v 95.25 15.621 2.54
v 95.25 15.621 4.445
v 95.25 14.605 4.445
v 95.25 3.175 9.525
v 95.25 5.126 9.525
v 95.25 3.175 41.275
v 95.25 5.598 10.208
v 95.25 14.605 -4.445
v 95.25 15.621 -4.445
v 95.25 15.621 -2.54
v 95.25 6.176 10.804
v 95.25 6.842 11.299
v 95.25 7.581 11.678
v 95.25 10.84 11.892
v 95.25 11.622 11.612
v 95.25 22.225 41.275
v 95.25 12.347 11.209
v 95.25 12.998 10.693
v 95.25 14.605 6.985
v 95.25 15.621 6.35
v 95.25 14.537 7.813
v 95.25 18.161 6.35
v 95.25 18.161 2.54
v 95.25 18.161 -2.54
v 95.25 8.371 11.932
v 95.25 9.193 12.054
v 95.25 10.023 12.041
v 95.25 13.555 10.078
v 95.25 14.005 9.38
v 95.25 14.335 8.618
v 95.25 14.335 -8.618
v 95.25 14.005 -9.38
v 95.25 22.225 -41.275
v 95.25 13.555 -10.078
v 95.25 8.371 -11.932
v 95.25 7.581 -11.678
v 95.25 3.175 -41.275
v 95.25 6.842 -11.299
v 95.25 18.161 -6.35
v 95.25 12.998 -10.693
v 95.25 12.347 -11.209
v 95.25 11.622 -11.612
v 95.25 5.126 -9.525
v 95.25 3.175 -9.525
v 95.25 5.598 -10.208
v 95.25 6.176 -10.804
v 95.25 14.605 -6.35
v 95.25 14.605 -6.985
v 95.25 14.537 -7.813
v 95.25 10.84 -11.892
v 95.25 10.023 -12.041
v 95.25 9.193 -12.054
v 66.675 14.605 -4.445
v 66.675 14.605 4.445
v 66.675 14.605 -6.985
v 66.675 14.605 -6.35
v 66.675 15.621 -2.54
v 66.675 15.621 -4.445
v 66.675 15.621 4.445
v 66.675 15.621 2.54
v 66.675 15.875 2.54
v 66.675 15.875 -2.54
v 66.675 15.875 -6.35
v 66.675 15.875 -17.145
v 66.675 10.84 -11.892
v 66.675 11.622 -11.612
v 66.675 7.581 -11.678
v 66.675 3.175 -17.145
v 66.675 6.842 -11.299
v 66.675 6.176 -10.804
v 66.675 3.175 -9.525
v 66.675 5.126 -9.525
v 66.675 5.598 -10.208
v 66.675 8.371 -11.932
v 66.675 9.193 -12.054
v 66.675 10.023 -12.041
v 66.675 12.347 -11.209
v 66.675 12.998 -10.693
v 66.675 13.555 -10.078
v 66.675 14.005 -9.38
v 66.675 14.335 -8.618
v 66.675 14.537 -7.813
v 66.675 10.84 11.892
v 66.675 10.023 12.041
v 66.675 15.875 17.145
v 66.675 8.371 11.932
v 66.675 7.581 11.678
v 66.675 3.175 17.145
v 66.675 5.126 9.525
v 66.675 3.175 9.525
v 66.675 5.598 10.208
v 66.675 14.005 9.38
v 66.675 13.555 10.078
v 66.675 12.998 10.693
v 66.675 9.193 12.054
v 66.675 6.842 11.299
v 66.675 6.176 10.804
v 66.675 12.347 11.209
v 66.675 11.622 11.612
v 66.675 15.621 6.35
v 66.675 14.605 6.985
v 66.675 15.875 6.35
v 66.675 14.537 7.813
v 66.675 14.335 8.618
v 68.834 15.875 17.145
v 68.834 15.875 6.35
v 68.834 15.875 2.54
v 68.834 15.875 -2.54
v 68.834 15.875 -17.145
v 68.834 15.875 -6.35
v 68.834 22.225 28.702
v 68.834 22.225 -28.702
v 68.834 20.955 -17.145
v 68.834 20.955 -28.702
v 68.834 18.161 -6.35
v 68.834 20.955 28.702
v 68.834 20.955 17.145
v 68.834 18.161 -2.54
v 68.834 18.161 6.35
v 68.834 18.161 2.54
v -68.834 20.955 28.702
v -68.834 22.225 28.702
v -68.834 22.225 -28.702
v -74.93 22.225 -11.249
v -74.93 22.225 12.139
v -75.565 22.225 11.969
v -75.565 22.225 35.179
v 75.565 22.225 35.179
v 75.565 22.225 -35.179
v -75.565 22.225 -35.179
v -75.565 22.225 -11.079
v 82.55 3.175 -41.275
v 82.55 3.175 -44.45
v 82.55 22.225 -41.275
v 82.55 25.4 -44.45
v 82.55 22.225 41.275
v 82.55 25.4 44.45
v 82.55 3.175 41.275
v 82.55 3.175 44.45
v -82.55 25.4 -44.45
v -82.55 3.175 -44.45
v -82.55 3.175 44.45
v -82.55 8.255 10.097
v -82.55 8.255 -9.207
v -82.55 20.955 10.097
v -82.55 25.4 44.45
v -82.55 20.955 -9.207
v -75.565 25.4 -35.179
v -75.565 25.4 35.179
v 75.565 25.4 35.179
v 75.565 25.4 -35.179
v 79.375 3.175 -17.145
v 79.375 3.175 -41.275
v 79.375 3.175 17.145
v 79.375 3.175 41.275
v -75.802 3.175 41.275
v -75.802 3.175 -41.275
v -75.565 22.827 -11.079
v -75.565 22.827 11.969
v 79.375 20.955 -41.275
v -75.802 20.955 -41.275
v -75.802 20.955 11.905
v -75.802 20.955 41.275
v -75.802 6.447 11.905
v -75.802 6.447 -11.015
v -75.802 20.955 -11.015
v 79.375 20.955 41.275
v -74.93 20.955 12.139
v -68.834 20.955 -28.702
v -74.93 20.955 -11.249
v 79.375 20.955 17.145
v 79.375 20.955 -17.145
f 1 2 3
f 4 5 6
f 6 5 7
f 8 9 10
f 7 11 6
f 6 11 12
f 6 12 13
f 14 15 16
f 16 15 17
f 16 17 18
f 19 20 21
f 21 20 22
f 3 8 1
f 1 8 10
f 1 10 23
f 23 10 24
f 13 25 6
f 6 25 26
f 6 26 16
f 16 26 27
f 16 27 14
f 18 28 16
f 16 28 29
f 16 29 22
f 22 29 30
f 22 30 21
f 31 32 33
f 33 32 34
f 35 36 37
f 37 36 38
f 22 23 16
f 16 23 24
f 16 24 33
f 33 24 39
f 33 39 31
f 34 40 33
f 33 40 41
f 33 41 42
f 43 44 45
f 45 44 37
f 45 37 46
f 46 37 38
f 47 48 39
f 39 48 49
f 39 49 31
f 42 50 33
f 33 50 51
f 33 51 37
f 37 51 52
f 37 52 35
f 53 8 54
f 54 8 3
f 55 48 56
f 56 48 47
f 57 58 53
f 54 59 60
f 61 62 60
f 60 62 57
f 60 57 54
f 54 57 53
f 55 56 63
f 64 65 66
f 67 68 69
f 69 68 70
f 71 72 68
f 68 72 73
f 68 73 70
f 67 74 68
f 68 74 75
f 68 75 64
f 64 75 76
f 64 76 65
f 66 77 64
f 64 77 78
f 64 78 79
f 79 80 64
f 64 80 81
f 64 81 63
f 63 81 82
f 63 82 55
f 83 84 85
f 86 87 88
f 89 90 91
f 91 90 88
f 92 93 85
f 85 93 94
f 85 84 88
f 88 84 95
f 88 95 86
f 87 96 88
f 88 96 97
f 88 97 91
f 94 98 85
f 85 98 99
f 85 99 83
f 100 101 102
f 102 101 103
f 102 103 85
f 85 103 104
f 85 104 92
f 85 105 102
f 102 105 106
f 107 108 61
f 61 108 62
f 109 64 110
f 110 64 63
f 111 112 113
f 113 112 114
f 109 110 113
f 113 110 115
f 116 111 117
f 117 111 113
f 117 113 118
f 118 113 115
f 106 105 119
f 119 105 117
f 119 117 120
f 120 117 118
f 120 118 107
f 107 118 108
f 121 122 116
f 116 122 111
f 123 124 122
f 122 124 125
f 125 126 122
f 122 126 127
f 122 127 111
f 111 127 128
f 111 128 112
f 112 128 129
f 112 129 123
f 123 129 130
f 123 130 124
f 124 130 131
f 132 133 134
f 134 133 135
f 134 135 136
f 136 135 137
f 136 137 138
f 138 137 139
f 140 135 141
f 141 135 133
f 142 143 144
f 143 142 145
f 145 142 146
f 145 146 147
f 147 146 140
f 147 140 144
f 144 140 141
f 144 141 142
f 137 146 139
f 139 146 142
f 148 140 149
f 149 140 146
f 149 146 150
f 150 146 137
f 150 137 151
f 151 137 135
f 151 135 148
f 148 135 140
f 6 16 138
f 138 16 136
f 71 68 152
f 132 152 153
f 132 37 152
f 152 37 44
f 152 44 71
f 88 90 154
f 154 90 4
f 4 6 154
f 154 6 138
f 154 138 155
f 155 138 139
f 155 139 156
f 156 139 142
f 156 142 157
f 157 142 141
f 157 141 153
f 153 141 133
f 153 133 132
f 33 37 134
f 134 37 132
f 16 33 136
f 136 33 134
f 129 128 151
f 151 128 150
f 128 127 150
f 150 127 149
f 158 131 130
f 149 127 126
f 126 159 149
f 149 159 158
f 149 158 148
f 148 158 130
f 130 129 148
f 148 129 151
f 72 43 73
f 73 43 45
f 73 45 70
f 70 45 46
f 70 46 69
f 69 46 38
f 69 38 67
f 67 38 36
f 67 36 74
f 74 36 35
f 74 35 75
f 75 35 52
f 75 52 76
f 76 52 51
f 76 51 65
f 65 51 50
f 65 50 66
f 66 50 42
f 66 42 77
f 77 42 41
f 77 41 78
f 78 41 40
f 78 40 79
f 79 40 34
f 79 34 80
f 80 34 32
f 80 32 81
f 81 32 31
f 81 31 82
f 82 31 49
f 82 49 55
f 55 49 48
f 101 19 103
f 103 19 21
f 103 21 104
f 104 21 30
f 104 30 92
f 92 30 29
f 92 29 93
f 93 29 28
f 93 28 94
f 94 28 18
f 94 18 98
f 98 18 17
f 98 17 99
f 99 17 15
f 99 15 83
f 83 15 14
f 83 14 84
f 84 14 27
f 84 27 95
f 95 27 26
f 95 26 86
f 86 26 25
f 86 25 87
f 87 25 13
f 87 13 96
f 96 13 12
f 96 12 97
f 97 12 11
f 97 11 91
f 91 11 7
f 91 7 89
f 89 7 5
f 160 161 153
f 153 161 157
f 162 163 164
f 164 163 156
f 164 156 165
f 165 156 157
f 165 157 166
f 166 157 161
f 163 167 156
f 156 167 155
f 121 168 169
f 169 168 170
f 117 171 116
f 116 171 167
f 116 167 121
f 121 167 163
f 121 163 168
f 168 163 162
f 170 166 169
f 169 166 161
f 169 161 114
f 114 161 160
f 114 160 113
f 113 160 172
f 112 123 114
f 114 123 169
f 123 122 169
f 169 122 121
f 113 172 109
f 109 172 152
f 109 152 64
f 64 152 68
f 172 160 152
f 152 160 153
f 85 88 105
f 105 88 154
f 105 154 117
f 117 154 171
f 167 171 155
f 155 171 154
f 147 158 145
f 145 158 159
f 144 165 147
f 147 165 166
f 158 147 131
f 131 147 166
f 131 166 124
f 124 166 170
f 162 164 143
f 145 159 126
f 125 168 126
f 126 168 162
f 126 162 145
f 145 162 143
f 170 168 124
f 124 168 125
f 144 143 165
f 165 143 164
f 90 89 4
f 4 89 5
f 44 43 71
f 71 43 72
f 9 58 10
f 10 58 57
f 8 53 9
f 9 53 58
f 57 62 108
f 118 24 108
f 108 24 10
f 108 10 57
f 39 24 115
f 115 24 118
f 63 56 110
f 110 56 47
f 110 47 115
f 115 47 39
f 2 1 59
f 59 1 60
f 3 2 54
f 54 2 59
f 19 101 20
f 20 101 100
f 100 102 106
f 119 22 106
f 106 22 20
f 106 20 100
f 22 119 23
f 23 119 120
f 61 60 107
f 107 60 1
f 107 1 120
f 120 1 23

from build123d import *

# Parameters (mm, degrees)
SKETCH1_W           = 165.1
SKETCH1_H           = 88.9
BOSS_EXTRUDE1_DEPTH = 25.4
SKETCH2_W           = 82.55
SKETCH2_H           = 19.05
BOSS_EXTRUDE2_DEPTH = 12.7
SKETCH5_W           = 151.13
SKETCH5_H           = 70.358
CUT_EXTRUDE3_DEPTH  = 3.175
SKETCH7_W           = 165.1
SKETCH7_H           = 88.9
CUT_EXTRUDE4_DEPTH  = 3.175
CUT_EXTRUDE5_DEPTH  = 29.21
SKETCH11_W          = 142.477455076
SKETCH11_H          = 82.55
CUT_EXTRUDE7_DEPTH  = 17.78
SKETCH15_W          = 137.668
SKETCH15_H          = 57.404
CUT_EXTRUDE8_DEPTH  = 6.35
SKETCH19_W          = 12.7
SKETCH19_H          = 24.13
CUT_EXTRUDE9_DEPTH  = 17.78
SKETCH22_W          = 19.304
SKETCH22_H          = 12.7
CUT_EXTRUDE11_DEPTH = 7.62
CUT_EXTRUDE11_DRAFT = 15
SKETCH24_W          = 28.575
SKETCH24_H          = 19.05
CUT_EXTRUDE12_DEPTH = 5.08
CUT_EXTRUDE14_DEPTH = 30.48


with BuildPart() as part:
    # Sketch1 → Boss-Extrude1 (new body)
    with BuildSketch(Plane(origin=(0, 0, 0), x_dir=(1, 0, 0), z_dir=(0, 1, 0))):
        Rectangle(SKETCH1_W, SKETCH1_H)
    extrude(amount=BOSS_EXTRUDE1_DEPTH)

    # Sketch2 → Boss-Extrude2 (add)
    with BuildSketch(Plane(origin=(82.55, 0, 0), x_dir=(0, 0, -1), z_dir=(1, 0, 0))):
        with Locations((0, 12.7)):
            Rectangle(SKETCH2_W, SKETCH2_H)
    extrude(amount=BOSS_EXTRUDE2_DEPTH)

    # Sketch5 → Cut-Extrude3 (cut)
    with BuildSketch(Plane(origin=(0, 25.4, 0), x_dir=(1, 0, 0), z_dir=(0, 1, 0))):
        Rectangle(SKETCH5_W, SKETCH5_H)
    extrude(amount=-CUT_EXTRUDE3_DEPTH, mode=Mode.SUBTRACT)

    # Sketch7 → Cut-Extrude4 (cut)
    with BuildSketch(Plane.XZ):
        Rectangle(SKETCH7_W, SKETCH7_H)
    extrude(amount=-CUT_EXTRUDE4_DEPTH, mode=Mode.SUBTRACT)

    # Sketch9 → Cut-Extrude5 (cut)
    with BuildSketch(Plane(origin=(95.25, 0, 0), x_dir=(0, 0, -1), z_dir=(1, 0, 0))):
        with BuildLine():
            Line((6.985, 4.445), (-6.985, 4.445))
            ThreePointArc((-6.985, 4.445), (-12.065, 9.525), (-6.985, 14.605))
            Line((-6.985, 14.605), (6.985, 14.605))
            ThreePointArc((6.985, 14.605), (12.065, 9.525), (6.985, 4.445))
        make_face()
    extrude(amount=-CUT_EXTRUDE5_DEPTH, mode=Mode.SUBTRACT)

    # Sketch11 → Cut-Extrude7 (cut)
    with BuildSketch(Plane(origin=(0, 3.175, 0), x_dir=(-1, 0, 0), z_dir=(0, -1, 0))):
        with Locations((4.563727538, 0)):
            Rectangle(SKETCH11_W, SKETCH11_H)
    extrude(amount=-CUT_EXTRUDE7_DEPTH, mode=Mode.SUBTRACT)

    # Sketch15 → Cut-Extrude8 (cut)
    with BuildSketch(Plane(origin=(0, 22.225, 0), x_dir=(1, 0, 0), z_dir=(0, 1, 0))):
        Rectangle(SKETCH15_W, SKETCH15_H)
    extrude(amount=-CUT_EXTRUDE8_DEPTH, mode=Mode.SUBTRACT)

    # Sketch19 → Cut-Extrude9 (cut)
    with BuildSketch(Plane(origin=(0, 3.175, 0), x_dir=(-1, 0, 0), z_dir=(0, -1, 0))):
        with Locations((-73.025, -29.21)):
            Rectangle(SKETCH19_W, SKETCH19_H)
        with Locations((-73.025, 29.21)):
            Rectangle(SKETCH19_W, SKETCH19_H)
    extrude(amount=-CUT_EXTRUDE9_DEPTH, mode=Mode.SUBTRACT)


with BuildPart() as cut_extrude11_tool:
    # Sketch22 → Cut-Extrude11 (with draft: the straight prism first)
    with BuildSketch(Plane.ZY.offset(82.55)):
        with Locations((0.44501799, 14.605)):
            Rectangle(SKETCH22_W, SKETCH22_H)
    extrude(amount=-CUT_EXTRUDE11_DEPTH)
    # Cut-Extrude11: the draft: its side faces are tilted about the plane it starts from
    cut_extrude11_sides = [cut_extrude11_tool.faces().sort_by_distance(p)[0] for p in [
        (-78.74, 14.605, 10.09701799),
        (-78.74, 20.955, 0.44501799),
        (-78.74, 14.605, -9.20698201),
        (-78.74, 8.255, 0.44501799),
    ]]
    draft(cut_extrude11_sides, Plane.ZY.offset(82.55), CUT_EXTRUDE11_DRAFT)


with BuildPart() as part_1:
    add(part.part)

    # Cut-Extrude11: cut by cut_extrude11_tool
    add(cut_extrude11_tool.part, mode=Mode.SUBTRACT)

    # Sketch24 → Cut-Extrude12 (cut)
    with BuildSketch(Plane.XZ.offset(-3.175)):
        with Locations((80.9625, 0)):
            Rectangle(SKETCH24_W, SKETCH24_H)
    extrude(amount=-CUT_EXTRUDE12_DEPTH, mode=Mode.SUBTRACT)

    # Sketch27 → Cut-Extrude14 (cut)
    with BuildSketch(Plane(origin=(95.25, 0, 0), x_dir=(0, 0, -1), z_dir=(1, 0, 0))):
        Polygon((-6.985, 14.605), (-4.445, 14.605), (-4.445, 15.621), (-2.54, 15.621), (-2.54, 18.161), (-6.35, 18.161), (-6.35, 15.621), align=None)
        Polygon((2.54, 18.161), (2.54, 15.621), (4.445, 15.621), (4.445, 14.605), (6.35, 14.605), (6.35, 15.621), (6.35, 18.161), align=None)
    extrude(amount=-CUT_EXTRUDE14_DEPTH, mode=Mode.SUBTRACT)


solid = part_1.part
